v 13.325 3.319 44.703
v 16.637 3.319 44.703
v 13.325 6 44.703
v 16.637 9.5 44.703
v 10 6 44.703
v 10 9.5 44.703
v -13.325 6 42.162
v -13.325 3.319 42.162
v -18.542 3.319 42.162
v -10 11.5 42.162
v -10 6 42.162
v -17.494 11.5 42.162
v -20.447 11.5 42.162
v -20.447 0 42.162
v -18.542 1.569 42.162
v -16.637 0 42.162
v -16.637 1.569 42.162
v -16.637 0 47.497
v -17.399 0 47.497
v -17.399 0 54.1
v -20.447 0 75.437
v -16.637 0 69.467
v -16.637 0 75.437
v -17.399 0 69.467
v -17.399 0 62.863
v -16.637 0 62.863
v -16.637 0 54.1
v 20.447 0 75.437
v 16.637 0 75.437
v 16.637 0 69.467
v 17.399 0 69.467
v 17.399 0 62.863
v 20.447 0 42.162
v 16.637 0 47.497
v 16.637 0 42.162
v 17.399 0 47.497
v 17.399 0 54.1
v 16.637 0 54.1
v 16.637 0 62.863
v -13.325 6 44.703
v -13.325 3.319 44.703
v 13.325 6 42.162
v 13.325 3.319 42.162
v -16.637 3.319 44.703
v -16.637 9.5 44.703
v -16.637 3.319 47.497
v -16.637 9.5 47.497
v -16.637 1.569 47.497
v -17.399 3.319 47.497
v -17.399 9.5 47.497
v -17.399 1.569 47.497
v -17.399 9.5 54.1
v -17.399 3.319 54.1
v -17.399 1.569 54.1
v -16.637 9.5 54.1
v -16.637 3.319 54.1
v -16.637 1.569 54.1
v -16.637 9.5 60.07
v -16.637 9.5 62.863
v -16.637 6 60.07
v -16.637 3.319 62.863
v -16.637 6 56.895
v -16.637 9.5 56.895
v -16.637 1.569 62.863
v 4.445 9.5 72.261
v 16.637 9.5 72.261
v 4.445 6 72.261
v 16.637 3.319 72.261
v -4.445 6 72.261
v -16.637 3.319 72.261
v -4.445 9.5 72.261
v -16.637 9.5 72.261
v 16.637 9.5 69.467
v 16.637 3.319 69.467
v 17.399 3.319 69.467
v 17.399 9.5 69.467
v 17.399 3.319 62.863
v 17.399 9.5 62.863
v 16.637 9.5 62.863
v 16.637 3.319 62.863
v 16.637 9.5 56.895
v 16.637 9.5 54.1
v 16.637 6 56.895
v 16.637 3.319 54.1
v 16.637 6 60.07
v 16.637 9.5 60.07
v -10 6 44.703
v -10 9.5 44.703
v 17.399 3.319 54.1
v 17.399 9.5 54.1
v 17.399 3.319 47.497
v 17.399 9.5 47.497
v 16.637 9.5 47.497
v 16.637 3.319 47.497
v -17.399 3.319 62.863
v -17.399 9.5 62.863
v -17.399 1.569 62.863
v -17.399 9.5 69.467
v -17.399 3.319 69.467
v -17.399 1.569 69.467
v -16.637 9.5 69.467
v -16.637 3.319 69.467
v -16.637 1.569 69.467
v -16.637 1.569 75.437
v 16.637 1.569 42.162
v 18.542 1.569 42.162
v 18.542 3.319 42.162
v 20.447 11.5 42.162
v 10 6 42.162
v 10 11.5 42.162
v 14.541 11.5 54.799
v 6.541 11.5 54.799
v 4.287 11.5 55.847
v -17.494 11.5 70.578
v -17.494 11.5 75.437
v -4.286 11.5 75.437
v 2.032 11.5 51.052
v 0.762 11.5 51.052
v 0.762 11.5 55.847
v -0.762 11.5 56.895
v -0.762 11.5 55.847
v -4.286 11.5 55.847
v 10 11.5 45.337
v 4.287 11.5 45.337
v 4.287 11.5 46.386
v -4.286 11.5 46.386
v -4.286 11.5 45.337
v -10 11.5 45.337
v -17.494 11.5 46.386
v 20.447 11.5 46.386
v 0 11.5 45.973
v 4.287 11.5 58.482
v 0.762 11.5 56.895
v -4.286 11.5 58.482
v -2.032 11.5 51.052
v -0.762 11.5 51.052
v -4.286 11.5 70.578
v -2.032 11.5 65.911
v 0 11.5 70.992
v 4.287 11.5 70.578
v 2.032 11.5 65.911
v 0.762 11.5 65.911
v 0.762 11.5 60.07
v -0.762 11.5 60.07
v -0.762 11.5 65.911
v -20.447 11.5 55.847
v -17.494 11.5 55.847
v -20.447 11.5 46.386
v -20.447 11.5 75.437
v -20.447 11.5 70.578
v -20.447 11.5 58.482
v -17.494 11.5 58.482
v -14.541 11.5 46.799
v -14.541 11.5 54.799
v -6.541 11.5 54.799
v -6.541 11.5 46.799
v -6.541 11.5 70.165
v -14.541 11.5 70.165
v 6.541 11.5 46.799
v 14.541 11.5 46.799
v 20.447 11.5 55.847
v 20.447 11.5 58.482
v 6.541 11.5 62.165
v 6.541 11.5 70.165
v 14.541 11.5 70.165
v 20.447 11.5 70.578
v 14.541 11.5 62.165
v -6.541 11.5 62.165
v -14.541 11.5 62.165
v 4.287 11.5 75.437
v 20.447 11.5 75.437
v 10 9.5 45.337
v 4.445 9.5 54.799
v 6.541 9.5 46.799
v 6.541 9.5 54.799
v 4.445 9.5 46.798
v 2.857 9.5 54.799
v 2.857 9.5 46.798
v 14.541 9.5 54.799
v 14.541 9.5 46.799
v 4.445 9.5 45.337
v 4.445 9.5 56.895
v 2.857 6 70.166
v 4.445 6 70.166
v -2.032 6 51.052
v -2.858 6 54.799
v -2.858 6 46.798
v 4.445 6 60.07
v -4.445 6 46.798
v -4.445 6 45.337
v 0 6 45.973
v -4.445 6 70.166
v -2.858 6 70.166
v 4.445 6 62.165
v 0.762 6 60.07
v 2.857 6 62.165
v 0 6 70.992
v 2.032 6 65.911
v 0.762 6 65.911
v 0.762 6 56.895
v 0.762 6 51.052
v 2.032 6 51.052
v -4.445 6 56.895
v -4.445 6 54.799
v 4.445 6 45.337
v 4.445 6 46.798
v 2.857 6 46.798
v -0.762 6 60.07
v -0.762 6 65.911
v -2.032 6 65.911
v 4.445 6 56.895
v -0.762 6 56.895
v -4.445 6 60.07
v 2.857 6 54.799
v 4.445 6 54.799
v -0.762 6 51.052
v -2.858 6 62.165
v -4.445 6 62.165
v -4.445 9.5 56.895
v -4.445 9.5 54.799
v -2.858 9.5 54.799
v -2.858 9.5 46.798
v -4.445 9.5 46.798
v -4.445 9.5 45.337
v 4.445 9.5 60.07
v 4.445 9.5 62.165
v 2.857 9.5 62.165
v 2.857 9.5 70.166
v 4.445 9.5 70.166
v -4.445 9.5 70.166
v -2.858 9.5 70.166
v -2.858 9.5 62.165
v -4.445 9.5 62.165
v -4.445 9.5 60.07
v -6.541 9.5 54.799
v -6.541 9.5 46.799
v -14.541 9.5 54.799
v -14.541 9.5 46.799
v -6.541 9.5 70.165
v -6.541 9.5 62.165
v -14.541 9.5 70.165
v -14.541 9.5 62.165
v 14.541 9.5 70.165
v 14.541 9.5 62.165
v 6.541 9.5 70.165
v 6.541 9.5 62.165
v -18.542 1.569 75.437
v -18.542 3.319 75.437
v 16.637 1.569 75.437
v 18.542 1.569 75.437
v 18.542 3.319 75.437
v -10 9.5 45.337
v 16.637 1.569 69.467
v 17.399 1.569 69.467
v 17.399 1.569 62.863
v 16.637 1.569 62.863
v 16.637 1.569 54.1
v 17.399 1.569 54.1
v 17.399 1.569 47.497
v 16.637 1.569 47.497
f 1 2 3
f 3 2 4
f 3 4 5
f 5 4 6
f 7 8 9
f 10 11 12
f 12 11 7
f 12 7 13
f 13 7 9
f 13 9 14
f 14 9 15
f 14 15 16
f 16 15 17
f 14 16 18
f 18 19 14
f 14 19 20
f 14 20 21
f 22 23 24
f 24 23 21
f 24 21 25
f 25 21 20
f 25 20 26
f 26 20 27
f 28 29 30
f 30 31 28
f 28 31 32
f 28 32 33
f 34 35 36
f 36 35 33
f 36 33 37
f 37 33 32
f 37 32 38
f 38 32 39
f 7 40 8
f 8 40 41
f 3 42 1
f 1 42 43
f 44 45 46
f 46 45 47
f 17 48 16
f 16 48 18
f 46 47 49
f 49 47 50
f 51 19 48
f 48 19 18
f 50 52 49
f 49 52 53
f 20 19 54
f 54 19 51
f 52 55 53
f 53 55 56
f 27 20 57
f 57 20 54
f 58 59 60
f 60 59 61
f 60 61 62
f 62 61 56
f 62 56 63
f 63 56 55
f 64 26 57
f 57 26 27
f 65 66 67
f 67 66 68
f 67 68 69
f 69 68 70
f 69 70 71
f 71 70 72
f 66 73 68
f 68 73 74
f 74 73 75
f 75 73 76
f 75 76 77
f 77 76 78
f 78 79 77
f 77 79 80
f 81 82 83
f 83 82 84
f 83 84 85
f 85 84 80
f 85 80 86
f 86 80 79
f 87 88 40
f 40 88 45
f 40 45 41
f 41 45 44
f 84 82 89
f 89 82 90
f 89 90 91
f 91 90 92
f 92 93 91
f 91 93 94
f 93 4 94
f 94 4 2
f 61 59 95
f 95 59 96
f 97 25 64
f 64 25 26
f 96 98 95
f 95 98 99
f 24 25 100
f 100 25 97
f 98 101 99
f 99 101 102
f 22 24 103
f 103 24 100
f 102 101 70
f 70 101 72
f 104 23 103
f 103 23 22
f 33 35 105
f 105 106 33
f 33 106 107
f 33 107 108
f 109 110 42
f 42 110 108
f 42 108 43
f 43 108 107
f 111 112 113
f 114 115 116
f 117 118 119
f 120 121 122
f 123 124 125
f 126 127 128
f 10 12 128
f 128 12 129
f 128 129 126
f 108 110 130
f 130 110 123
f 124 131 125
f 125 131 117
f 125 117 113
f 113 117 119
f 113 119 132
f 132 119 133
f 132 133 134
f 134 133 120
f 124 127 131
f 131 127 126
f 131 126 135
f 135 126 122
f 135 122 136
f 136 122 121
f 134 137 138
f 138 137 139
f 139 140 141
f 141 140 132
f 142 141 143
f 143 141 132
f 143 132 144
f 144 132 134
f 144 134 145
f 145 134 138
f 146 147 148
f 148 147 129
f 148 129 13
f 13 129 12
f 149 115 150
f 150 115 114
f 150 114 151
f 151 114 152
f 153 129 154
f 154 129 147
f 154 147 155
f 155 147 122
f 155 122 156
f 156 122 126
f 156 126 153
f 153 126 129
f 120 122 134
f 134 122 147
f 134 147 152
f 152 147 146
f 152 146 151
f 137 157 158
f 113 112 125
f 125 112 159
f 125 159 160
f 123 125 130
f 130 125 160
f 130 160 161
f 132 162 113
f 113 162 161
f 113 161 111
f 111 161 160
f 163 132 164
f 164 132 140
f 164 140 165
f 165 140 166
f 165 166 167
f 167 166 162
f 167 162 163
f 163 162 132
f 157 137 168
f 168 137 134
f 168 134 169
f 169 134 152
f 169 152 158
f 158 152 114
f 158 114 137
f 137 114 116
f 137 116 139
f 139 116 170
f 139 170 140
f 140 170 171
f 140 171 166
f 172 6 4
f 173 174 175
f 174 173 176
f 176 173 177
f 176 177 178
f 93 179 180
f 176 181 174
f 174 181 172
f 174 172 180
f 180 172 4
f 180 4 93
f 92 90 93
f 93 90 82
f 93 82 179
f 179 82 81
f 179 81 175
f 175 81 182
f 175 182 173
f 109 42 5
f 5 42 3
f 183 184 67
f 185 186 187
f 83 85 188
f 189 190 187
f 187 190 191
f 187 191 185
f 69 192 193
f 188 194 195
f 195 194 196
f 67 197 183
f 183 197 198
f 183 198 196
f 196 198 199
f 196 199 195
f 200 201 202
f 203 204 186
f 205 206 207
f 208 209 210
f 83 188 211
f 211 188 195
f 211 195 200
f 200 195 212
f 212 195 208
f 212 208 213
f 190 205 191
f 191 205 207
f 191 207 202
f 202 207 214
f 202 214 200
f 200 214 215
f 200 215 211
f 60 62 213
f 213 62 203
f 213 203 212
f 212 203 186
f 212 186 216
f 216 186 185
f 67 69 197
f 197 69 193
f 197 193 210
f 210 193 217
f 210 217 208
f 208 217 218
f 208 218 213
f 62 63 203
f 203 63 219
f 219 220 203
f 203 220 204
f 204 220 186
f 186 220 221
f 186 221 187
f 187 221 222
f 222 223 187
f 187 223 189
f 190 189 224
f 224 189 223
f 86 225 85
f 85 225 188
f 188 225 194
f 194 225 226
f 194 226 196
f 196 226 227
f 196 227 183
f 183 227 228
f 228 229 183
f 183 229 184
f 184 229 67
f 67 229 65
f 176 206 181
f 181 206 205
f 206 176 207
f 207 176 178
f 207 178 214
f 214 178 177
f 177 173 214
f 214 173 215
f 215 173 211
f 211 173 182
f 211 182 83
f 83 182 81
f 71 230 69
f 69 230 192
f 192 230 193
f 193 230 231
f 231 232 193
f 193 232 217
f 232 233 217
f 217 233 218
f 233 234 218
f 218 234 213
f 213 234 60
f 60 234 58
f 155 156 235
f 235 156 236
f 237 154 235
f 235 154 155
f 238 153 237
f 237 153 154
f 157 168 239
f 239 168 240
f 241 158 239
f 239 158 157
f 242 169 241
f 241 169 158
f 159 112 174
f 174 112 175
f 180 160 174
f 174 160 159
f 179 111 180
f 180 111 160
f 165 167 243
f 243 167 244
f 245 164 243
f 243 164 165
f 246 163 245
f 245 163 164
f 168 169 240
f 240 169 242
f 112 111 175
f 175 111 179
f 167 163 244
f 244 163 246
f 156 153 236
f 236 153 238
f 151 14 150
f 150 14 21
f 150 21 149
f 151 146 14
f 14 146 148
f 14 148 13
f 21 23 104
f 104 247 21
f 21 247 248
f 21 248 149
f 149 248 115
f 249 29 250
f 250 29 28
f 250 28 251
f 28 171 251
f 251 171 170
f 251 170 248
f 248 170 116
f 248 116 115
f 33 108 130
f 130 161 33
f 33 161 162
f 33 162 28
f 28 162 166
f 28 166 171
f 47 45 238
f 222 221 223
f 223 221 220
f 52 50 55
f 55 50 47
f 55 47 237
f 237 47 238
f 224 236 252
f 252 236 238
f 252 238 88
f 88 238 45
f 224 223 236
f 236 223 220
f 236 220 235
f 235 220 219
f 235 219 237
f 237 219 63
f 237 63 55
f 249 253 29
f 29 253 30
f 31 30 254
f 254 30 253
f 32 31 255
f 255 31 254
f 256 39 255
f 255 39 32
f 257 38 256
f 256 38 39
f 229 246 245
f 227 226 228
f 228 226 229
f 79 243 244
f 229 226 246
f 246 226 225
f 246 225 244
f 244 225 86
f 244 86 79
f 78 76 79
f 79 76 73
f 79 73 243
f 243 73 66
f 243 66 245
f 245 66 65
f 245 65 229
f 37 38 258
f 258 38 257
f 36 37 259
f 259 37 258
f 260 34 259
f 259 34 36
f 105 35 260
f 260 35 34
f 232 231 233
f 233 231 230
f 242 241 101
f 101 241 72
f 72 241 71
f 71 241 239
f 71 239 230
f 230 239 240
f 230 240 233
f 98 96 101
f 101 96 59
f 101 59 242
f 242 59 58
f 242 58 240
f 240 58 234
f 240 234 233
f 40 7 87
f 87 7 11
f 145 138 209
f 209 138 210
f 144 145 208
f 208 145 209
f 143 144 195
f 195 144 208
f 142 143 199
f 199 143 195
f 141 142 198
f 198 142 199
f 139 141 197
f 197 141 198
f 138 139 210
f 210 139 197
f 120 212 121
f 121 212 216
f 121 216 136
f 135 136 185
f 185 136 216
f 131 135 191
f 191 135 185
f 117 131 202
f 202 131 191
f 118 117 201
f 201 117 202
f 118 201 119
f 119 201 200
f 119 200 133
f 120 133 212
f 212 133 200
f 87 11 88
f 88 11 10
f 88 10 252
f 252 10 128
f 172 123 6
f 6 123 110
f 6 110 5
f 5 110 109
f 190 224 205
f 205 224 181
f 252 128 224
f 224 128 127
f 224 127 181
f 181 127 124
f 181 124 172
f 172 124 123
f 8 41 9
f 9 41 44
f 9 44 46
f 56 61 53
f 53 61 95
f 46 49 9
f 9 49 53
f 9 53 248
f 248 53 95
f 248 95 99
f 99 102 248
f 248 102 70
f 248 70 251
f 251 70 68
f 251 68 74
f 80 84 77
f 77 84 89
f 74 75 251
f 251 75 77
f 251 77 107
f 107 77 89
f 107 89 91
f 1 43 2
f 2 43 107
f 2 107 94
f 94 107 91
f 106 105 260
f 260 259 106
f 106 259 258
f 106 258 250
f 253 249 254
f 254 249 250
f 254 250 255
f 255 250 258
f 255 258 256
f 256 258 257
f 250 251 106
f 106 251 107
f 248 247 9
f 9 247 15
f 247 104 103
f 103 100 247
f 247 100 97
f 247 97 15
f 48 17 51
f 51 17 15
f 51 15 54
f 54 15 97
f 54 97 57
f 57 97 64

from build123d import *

# Parameters (mm, degrees)
SKETCH1_W               = 64.75
SKETCH1_H               = 84.325
SKETCH1_R               = 1.35
BOSS_EXTRUDE1_DEPTH     = 25.4
CUT_EXTRUDE1_DEPTH      = 82.335102547
SKETCH5_W               = 58.925
SKETCH5_H               = 20.6375
CUT_EXTRUDE3_DEPTH      = 82.335102547
BOSS_EXTRUDE2_START     = 4.7625
SKETCH1_3_W             = 6.75
SKETCH1_3_H             = 6.75
SKETCH1_3_R             = 1.35
SKETCH1_3_H_2           = 3.175
BOSS_EXTRUDE2_DEPTH     = 9.525
CUT_EXTRUDE6_DEPTH      = 55.65443286
CUT_EXTRUDE6_DEPTH_BACK = 55.65443286
SKETCH7_W               = 26.65
SKETCH7_H               = 62.1
SKETCH8_W               = 40.894
SKETCH8_H               = 33.274
SKETCH8_W_2             = 8
SKETCH8_H_2             = 8
BOSS_EXTRUDE3_DEPTH     = 11.5
SKETCH8_3_W             = 8
SKETCH8_3_H             = 8
CUT_EXTRUDE7_DEPTH      = 9.5
CUT_EXTRUDE8_DEPTH      = 6
SKETCH9_W               = 26.65
SKETCH9_H               = 86.865
CUT_EXTRUDE9_DEPTH      = 6
CUT_EXTRUDE10_DEPTH     = 84.258730216
SKETCH11_W              = 64.75
SKETCH11_H              = 84.325
CUT_EXTRUDE11_DEPTH     = 86.930007316
BOSS_EXTRUDE4_DEPTH     = 40.894
SKETCH15_W              = 7.376
SKETCH15_H              = 9.883286215
SKETCH15_W_2            = 20
SKETCH15_H_2            = 9.293713785
CUT_EXTRUDE12_DEPTH     = 79.999970514
CUT_EXTRUDE14_START     = -33.274
CUT_EXTRUDE14_DEPTH     = 80.122835409
FILLET1_R               = 3.175
FILLET2_R               = 2.54
SKETCH22_W              = 9.202496002
SKETCH22_H              = 15.787790907
CUT_EXTRUDE17_DEPTH     = 87.575023929


with BuildPart() as part:
    # Sketch1 → Boss-Extrude1 (new body)
    with BuildSketch(Plane(origin=(0, 0, 0), x_dir=(1, 0, 0), z_dir=(0, 1, 0))):
        Rectangle(SKETCH1_W, SKETCH1_H)
        with Locations(Location((-29, 10.2125, 0), (0, 0, 270))):
            Circle(SKETCH1_R, mode=Mode.SUBTRACT)
        with Locations(Location((29, 10.2125, 0), (0, 0, 270))):
            Circle(SKETCH1_R, mode=Mode.SUBTRACT)
        with Locations(Location((-29, -38.7875, 0), (0, 0, 270))):
            Circle(SKETCH1_R, mode=Mode.SUBTRACT)
        with Locations(Location((29, -38.7875, 0), (0, 0, 270))):
            Circle(SKETCH1_R, mode=Mode.SUBTRACT)
    extrude(amount=BOSS_EXTRUDE1_DEPTH)

    # Sketch3 → Cut-Extrude1 (cut, through all)
    with BuildSketch(Plane(origin=(32.375, 0, 0), x_dir=(0, 0, -1), z_dir=(1, 0, 0))):
        Polygon((42.1625, 18.034), (23.1125, 18.669), (23.1125, 12.7), (42.1625, 12.7), align=None)
    extrude(amount=-CUT_EXTRUDE1_DEPTH, mode=Mode.SUBTRACT)

    # Sketch5 → Cut-Extrude3 (cut, through all)
    with BuildSketch(Plane(origin=(32.375, 0, 0), x_dir=(0, 0, -1), z_dir=(1, 0, 0))):
        with Locations((-12.7, 15.08125)):
            Rectangle(SKETCH5_W, SKETCH5_H)
    extrude(amount=-CUT_EXTRUDE3_DEPTH, mode=Mode.SUBTRACT)

    # Sketch1<3> → Boss-Extrude2 (add)
    # profile 1 of 6: a face of its own
    with BuildSketch(Plane(origin=(0, 0, 0), x_dir=(1, 0, 0), z_dir=(0, 1, 0)).offset(BOSS_EXTRUDE2_START)):
        with Locations((29, -38.7875)):
            Rectangle(SKETCH1_3_W, SKETCH1_3_H)
        with Locations(Location((29, -38.7875, 0), (0, 0, 90))):
            Circle(SKETCH1_3_R, mode=Mode.SUBTRACT)
    # profile 2 of 6: a face of its own
    with BuildSketch(Plane(origin=(0, 0, 0), x_dir=(1, 0, 0), z_dir=(0, 1, 0)).offset(BOSS_EXTRUDE2_START)):
        with Locations((-29, -38.7875)):
            Rectangle(SKETCH1_3_W, SKETCH1_3_H)
        with Locations(Location((-29, -38.7875, 0), (0, 0, 90))):
            Circle(SKETCH1_3_R, mode=Mode.SUBTRACT)
    # profile 3 of 6: a face of its own
    with BuildSketch(Plane(origin=(0, 0, 0), x_dir=(1, 0, 0), z_dir=(0, 1, 0)).offset(BOSS_EXTRUDE2_START)):
        with Locations((-29, 10.2125)):
            Rectangle(SKETCH1_3_W, SKETCH1_3_H)
        with Locations(Location((-29, 10.2125, 0), (0, 0, 90))):
            Circle(SKETCH1_3_R, mode=Mode.SUBTRACT)
    # profile 4 of 6: a face of its own
    with BuildSketch(Plane(origin=(0, 0, 0), x_dir=(1, 0, 0), z_dir=(0, 1, 0)).offset(BOSS_EXTRUDE2_START)):
        with Locations((29, 10.2125)):
            Rectangle(SKETCH1_3_W, SKETCH1_3_H)
        with Locations(Location((29, 10.2125, 0), (0, 0, 90))):
            Circle(SKETCH1_3_R, mode=Mode.SUBTRACT)
    # profile 5 of 6: a face of its own
    with BuildSketch(Plane(origin=(0, 0, 0), x_dir=(1, 0, 0), z_dir=(0, 1, 0)).offset(BOSS_EXTRUDE2_START)):
        with Locations((-29, 15.175)):
            Rectangle(SKETCH1_3_W, SKETCH1_3_H_2)
    # profile 6 of 6: a face of its own
    with BuildSketch(Plane(origin=(0, 0, 0), x_dir=(1, 0, 0), z_dir=(0, 1, 0)).offset(BOSS_EXTRUDE2_START)):
        with Locations((29, 15.175)):
            Rectangle(SKETCH1_3_W, SKETCH1_3_H_2)
    extrude(amount=BOSS_EXTRUDE2_DEPTH)

    # Sketch7 → Cut-Extrude6 (cut, two sides: drawn at the far end of the back side and taken through both)
    with BuildSketch(Plane(origin=(0, 12.7, 0), x_dir=(1, 0, 0), z_dir=(0, 1, 0)).offset(-CUT_EXTRUDE6_DEPTH_BACK)):
        with Locations((0, -1.5875)):
            Rectangle(SKETCH7_W, SKETCH7_H)
    extrude(amount=CUT_EXTRUDE6_DEPTH + CUT_EXTRUDE6_DEPTH_BACK, mode=Mode.SUBTRACT)

    # Sketch8 → Boss-Extrude3 (add)
    with BuildSketch(Plane.XZ):
        with Locations((0, 58.7995)):
            Rectangle(SKETCH8_W, SKETCH8_H)
        with Locations((-10.541, 50.7985)):
            Rectangle(SKETCH8_W_2, SKETCH8_H_2, mode=Mode.SUBTRACT)
        with Locations((10.541, 50.7985)):
            Rectangle(SKETCH8_W_2, SKETCH8_H_2, mode=Mode.SUBTRACT)
        with Locations((-10.541, 66.1655)):
            Rectangle(SKETCH8_W_2, SKETCH8_H_2, mode=Mode.SUBTRACT)
        with Locations((10.541, 66.1655)):
            Rectangle(SKETCH8_W_2, SKETCH8_H_2, mode=Mode.SUBTRACT)
    extrude(amount=-BOSS_EXTRUDE3_DEPTH)

    # Sketch8<3> → Cut-Extrude7 (cut)
    # profile 1 of 4: a face of its own
    with BuildSketch(Plane.XZ):
        Polygon((-16.637, 47.4965), (-16.637, 44.7025), (-4.445, 44.7025), (-4.445, 46.7984953), (-2.8575, 46.7984953), (-2.8575, 54.7985047), (-4.445, 54.7985047), (-4.445, 56.8945), (-16.637, 56.8945), (-16.637, 54.1005), (-17.399, 54.1005), (-17.399, 47.4965), align=None)
        with Locations((-10.541, 50.7985)):
            Rectangle(SKETCH8_3_W, SKETCH8_3_H, mode=Mode.SUBTRACT)
    # profile 2 of 4: a face of its own
    with BuildSketch(Plane.XZ):
        Polygon((4.445, 56.8945), (4.445, 54.7985047), (2.8575, 54.7985047), (2.8575, 46.7984953), (4.445, 46.7984953), (4.445, 44.7025), (16.637, 44.7025), (16.637, 47.4965), (17.399, 47.4965), (17.399, 54.1005), (16.637, 54.1005), (16.637, 56.8945), align=None)
        with Locations((10.541, 50.7985)):
            Rectangle(SKETCH8_3_W, SKETCH8_3_H, mode=Mode.SUBTRACT)
    # profile 3 of 4: a face of its own
    with BuildSketch(Plane.XZ):
        Polygon((-16.637, 72.2615), (-16.637, 69.4675), (-17.399, 69.4675), (-17.399, 62.8635), (-16.637, 62.8635), (-16.637, 60.0695), (-4.445, 60.0695), (-4.445, 62.1654953), (-2.8575, 62.1654953), (-2.8575, 70.1655047), (-4.445, 70.1655047), (-4.445, 72.2615), align=None)
        with Locations((-10.541, 66.1655)):
            Rectangle(SKETCH8_3_W, SKETCH8_3_H, mode=Mode.SUBTRACT)
    # profile 4 of 4: a face of its own
    with BuildSketch(Plane.XZ):
        Polygon((4.445, 72.2615), (4.445, 70.1655047), (2.8575, 70.1655047), (2.8575, 62.1654953), (4.445, 62.1654953), (4.445, 60.0695), (16.637, 60.0695), (16.637, 62.8635), (17.399, 62.8635), (17.399, 69.4675), (16.637, 69.4675), (16.637, 72.2615), align=None)
        with Locations((10.541, 66.1655)):
            Rectangle(SKETCH8_3_W, SKETCH8_3_H, mode=Mode.SUBTRACT)
    extrude(amount=-CUT_EXTRUDE7_DEPTH, mode=Mode.SUBTRACT)

    # Sketch8<4> → Cut-Extrude8 (cut)
    with BuildSketch(Plane.XZ):
        Polygon((-4.445, 46.7984953), (-4.445, 44.7025), (4.445, 44.7025), (4.445, 46.7984953), (2.8575, 46.7984953), (2.8575, 54.7985047), (4.445, 54.7985047), (4.445, 56.8945), (16.637, 56.8945), (16.637, 60.0695), (4.445, 60.0695), (4.445, 62.1654953), (2.8575, 62.1654953), (2.8575, 70.1655047), (4.445, 70.1655047), (4.445, 72.2615), (-4.445, 72.2615), (-4.445, 70.1655047), (-2.8575, 70.1655047), (-2.8575, 62.1654953), (-4.445, 62.1654953), (-4.445, 60.0695), (-16.637, 60.0695), (-16.637, 56.8945), (-4.445, 56.8945), (-4.445, 54.7985047), (-2.8575, 54.7985047), (-2.8575, 46.7984953), align=None)
    extrude(amount=-CUT_EXTRUDE8_DEPTH, mode=Mode.SUBTRACT)

    # Sketch9 → Cut-Extrude9 (cut)
    with BuildSketch(Plane.XZ):
        with Locations((0, 1.27)):
            Rectangle(SKETCH9_W, SKETCH9_H)
    extrude(amount=-CUT_EXTRUDE9_DEPTH, mode=Mode.SUBTRACT)

    # Sketch10 → Cut-Extrude10 (cut, through all)
    with BuildSketch(Plane(origin=(0, 11.5, 0), x_dir=(1, 0, 0), z_dir=(0, 1, 0))):
        Polygon((-0.762, -56.8945), (0.762, -56.8945), (0.762, -51.0525), (2.032, -51.0525), (0, -45.9725), (-2.032, -51.0525), (-0.762, -51.0525), align=None)
        Polygon((-0.762, -65.9115), (-0.762, -60.0695), (0.762, -60.0695), (0.762, -65.9115), (2.032, -65.9115), (0, -70.9915), (-2.032, -65.9115), align=None)
    extrude(amount=-CUT_EXTRUDE10_DEPTH, mode=Mode.SUBTRACT)

    # Sketch11 → Cut-Extrude11 (cut, through all)
    with BuildSketch(Plane.XZ):
        Rectangle(SKETCH11_W, SKETCH11_H)
    extrude(amount=-CUT_EXTRUDE11_DEPTH, mode=Mode.SUBTRACT)

    # Sketch14 → Boss-Extrude4 (add)
    with BuildSketch(Plane(origin=(20.447, 0, 0), x_dir=(0, 0, -1), z_dir=(1, 0, 0))):
        with BuildLine():
            Line((-38.942699076, 7.350099538), (-39.3685, 2.3))
            Line((-39.3685, 2.3), (-36.819487459, 2.3))
            Line((-36.819487459, 2.3), (-36.043786215, 11.5))
            Line((-36.043786215, 11.5), (-42.1625, 11.5))
            Line((-42.1625, 11.5), (-42.1625, 7.350099538))
            ThreePointArc((-42.1625, 7.350099538), (-40.552599538, 8.96), (-38.942699076, 7.350099538))
        make_face()
    extrude(amount=-BOSS_EXTRUDE4_DEPTH)

    # Sketch15 → Cut-Extrude12 (cut, through all)
    with BuildSketch(Plane(origin=(0, 11.5, 0), x_dir=(1, 0, 0), z_dir=(0, 1, 0))):
        with Locations((16.759, -31.102143108)):
            Rectangle(SKETCH15_W, SKETCH15_H)
        with Locations((-16.759, -31.102143108)):
            Rectangle(SKETCH15_W, SKETCH15_H)
        with Locations((0, -40.690643108)):
            Rectangle(SKETCH15_W_2, SKETCH15_H_2)
        with Locations((0, -40.690643108)):
            Rectangle(SKETCH15_W_2, SKETCH15_H_2)
    extrude(amount=-CUT_EXTRUDE12_DEPTH, mode=Mode.SUBTRACT)

    # Sketch18 → Cut-Extrude14 (cut, through all)
    with BuildSketch(Plane.XY.offset(75.4365).offset(CUT_EXTRUDE14_START)):
        Polygon((18.542, 1.569), (18.542, 3.319), (-18.542, 3.319), (-18.542, 1.569), (-16.637, 1.569), (-16.637, 0), (16.637, 0), (16.637, 1.569), align=None)
    extrude(amount=CUT_EXTRUDE14_DEPTH, mode=Mode.SUBTRACT)

    # Fillet1
    fillet1_edges = [part.edges().sort_by_distance(p)[0] for p in [
        (-15.2235, 11.5, 36.043786215),
        (15.2235, 11.5, 36.043786215),
    ]]
    fillet(fillet1_edges, radius=FILLET1_R)

    # Fillet2
    # the kernel refuses this fillet: 2.54 mm, written as the material it takes off along each edge
    with BuildSketch(Plane(origin=(-3.11459751, 2.3, 39.3685), x_dir=(0, 0, -1), z_dir=(-1, 0, 0)), Plane(origin=(27.33240249, 2.3, 39.3685), x_dir=(0, 0, -1), z_dir=(-1, 0, 0))) as fillet2_piece_1:
        with BuildLine():
            CenterArc((2.762416328, -2.531019325), FILLET2_R, 94.819514659, 90)
            Line((0.231397003, -2.744423112), (0.180776616, -2.748691188))
            Line((0.180776616, -2.748691188), (-0.050620387, -0.004268076))
            Line((-0.050620387, -0.004268076), (0, 0.0508))
            ThreePointArc((0, 0.0508), (1.27450627, 0.0508), (2.544744465, 0.050620387))
            Line((2.544744465, 0.050620387), (2.549012541, 0))
        make_face()
    extrude(amount=24.217804979, mode=Mode.SUBTRACT)

    # Sketch22 → Cut-Extrude17 (cut, through all)
    with BuildSketch(Plane.ZY.offset(20.447)):
        with Locations((37.561251999, 7.893895454)):
            Rectangle(SKETCH22_W, SKETCH22_H)
    extrude(amount=-CUT_EXTRUDE17_DEPTH, mode=Mode.SUBTRACT)


solid = part.part
